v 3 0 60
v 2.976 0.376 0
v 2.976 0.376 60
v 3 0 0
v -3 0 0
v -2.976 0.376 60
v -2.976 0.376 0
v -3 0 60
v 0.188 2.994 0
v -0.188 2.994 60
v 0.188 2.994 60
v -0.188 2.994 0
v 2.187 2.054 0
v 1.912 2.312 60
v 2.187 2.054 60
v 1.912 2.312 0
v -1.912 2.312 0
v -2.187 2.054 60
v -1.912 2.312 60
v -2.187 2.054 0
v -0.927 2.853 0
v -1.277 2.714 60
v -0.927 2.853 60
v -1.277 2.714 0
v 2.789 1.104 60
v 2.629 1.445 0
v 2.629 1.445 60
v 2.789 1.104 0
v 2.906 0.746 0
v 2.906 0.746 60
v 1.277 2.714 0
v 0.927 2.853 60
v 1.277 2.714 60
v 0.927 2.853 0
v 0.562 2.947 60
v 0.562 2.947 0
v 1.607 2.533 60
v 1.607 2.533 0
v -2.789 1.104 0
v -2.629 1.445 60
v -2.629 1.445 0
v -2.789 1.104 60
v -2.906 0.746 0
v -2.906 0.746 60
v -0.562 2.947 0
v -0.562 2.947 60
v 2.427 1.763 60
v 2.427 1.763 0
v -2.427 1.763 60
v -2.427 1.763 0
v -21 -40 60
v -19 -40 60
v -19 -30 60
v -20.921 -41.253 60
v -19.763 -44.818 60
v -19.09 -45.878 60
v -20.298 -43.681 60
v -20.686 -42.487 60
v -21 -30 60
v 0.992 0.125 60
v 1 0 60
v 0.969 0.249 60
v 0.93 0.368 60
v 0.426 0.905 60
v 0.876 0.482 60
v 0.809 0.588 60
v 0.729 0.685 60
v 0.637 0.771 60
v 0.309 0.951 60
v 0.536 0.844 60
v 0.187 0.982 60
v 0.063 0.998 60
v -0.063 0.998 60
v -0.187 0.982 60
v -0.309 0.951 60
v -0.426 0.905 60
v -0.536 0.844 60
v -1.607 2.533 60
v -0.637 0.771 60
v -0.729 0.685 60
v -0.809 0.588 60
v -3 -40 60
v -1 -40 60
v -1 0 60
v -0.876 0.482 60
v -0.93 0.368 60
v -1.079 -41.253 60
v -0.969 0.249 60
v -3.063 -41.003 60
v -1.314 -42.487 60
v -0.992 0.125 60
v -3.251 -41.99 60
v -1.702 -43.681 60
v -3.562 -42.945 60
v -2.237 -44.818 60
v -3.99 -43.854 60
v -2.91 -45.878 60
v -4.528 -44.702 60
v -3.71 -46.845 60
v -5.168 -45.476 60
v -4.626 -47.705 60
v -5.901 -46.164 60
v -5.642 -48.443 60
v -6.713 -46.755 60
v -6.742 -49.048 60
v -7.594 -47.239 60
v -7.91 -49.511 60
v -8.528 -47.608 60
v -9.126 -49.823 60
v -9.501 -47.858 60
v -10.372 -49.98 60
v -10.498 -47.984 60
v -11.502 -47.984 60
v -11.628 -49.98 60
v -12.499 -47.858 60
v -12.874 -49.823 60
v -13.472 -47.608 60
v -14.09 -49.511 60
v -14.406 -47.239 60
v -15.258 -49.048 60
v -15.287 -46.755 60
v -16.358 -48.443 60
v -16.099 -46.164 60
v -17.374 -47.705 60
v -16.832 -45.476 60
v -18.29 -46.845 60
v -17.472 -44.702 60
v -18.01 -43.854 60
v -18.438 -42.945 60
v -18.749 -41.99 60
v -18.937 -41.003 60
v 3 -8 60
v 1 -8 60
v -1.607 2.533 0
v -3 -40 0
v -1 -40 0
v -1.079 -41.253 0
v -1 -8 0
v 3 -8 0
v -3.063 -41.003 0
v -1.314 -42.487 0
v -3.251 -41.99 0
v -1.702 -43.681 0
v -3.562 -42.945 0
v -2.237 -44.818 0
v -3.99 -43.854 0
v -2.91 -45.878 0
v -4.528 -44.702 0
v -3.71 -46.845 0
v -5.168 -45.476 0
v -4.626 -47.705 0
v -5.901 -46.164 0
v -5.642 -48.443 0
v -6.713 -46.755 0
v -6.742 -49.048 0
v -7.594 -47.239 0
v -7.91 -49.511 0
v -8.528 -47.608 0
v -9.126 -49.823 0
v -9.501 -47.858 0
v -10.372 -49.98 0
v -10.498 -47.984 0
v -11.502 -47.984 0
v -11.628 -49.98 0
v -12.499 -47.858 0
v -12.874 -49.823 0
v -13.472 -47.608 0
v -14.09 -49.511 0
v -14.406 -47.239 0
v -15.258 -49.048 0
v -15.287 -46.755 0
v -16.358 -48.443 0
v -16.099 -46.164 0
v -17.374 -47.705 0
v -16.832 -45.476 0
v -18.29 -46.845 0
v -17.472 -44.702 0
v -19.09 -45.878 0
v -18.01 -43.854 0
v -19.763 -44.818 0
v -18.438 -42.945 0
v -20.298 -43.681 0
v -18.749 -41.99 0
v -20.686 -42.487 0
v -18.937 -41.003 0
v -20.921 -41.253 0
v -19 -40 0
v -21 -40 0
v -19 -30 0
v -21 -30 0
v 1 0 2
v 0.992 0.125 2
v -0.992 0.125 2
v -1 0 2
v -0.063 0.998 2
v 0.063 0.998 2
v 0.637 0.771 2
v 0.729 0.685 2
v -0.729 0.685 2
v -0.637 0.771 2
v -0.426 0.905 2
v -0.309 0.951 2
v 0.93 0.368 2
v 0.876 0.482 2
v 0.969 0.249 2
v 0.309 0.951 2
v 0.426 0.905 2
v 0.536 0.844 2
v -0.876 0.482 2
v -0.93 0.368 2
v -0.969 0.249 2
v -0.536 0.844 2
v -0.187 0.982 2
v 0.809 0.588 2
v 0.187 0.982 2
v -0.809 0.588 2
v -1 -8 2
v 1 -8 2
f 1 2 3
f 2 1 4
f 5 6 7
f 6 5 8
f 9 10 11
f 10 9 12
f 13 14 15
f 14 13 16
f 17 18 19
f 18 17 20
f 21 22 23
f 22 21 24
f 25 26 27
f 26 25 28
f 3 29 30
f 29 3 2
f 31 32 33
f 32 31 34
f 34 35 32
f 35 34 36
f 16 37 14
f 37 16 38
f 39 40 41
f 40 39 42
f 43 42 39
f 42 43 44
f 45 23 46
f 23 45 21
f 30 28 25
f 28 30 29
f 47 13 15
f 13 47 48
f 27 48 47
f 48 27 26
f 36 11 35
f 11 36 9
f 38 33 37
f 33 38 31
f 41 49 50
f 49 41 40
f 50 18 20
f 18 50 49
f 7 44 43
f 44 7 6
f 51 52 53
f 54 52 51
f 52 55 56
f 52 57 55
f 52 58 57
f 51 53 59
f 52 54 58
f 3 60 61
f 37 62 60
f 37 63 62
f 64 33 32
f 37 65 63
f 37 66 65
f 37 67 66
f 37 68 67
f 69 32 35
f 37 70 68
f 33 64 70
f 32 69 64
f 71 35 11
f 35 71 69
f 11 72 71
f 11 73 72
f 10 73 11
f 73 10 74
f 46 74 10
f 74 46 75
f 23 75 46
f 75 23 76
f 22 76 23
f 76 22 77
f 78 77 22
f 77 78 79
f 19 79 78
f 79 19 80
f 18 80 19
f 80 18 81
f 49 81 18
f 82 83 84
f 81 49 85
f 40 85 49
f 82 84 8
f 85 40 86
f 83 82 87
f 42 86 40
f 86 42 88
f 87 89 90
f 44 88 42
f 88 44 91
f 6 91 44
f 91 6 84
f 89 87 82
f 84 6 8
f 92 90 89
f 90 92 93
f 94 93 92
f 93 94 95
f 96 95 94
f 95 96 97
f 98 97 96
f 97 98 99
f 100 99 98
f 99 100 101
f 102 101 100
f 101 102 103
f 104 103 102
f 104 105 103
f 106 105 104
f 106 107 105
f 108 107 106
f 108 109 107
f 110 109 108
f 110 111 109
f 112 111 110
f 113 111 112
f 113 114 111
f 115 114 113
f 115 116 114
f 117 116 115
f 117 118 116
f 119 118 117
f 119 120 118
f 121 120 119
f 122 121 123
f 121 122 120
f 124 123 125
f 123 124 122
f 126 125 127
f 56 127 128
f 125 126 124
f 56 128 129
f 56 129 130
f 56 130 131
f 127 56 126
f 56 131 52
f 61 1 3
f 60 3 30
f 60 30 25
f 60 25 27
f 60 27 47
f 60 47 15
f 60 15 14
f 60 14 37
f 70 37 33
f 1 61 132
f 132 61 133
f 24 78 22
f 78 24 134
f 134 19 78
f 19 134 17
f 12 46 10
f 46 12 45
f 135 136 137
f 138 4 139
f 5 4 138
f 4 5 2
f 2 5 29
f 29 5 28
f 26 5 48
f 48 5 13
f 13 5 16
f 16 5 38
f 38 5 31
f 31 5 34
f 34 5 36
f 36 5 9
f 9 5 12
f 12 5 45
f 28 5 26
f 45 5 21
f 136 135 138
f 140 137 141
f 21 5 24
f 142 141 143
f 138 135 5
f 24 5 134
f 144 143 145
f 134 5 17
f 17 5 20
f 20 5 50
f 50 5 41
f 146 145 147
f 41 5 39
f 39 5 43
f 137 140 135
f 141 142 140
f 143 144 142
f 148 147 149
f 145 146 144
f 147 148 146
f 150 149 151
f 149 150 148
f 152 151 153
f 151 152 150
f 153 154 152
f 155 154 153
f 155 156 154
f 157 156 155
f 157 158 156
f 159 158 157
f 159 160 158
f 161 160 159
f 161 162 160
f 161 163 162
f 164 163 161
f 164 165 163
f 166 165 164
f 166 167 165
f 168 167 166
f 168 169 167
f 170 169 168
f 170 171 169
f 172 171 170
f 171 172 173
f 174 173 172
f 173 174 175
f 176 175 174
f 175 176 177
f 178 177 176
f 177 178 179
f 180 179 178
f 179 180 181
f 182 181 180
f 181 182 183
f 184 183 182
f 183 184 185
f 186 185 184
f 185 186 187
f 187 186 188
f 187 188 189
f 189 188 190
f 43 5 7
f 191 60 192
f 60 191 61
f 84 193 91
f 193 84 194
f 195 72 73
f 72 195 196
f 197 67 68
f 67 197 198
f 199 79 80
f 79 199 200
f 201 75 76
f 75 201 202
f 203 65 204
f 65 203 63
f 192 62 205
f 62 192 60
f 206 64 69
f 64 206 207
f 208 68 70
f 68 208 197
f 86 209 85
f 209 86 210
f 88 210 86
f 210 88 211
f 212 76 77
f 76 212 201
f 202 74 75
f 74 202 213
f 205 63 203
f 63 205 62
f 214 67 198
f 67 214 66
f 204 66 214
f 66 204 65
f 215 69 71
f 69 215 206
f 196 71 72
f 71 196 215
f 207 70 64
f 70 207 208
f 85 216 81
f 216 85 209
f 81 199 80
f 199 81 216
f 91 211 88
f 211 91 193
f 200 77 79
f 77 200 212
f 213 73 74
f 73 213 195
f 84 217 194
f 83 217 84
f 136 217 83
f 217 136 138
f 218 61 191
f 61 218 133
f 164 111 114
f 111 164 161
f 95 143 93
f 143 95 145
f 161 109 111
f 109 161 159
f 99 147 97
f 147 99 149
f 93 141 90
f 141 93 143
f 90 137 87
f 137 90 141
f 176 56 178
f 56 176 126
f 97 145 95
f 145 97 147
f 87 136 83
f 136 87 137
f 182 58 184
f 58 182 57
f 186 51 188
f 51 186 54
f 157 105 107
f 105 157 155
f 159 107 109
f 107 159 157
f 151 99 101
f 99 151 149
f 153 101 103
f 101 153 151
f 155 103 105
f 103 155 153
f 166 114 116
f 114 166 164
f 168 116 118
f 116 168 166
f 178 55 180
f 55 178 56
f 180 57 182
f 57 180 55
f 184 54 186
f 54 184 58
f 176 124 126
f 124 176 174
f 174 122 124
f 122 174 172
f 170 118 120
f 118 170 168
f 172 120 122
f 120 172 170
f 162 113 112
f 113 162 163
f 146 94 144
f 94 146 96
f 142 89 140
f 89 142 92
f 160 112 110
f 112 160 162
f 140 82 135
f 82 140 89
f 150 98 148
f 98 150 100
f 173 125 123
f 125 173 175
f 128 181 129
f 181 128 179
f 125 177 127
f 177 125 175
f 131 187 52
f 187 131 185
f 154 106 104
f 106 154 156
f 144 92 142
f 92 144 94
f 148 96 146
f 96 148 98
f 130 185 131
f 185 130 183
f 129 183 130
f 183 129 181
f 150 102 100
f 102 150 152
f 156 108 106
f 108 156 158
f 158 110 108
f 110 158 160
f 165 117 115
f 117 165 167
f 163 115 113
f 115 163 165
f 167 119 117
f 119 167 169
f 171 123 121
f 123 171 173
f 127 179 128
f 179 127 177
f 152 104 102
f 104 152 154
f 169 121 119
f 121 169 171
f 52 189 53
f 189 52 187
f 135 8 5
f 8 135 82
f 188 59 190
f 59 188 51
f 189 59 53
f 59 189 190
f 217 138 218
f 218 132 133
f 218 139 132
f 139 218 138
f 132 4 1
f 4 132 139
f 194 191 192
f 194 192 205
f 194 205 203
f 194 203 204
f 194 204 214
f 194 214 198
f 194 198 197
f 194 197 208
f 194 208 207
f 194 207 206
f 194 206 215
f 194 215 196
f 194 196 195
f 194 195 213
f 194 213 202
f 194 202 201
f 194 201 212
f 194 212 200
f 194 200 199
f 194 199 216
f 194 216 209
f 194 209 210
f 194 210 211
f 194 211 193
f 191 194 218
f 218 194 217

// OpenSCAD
// file: ../text.scad
module curveText(txt, radius, size, thickness) {
  spacing = size;
  for (i = [0:len(txt) - 1]) {
    char = str(txt[i]);
    angle = i * spacing - (len(txt) - 1) * spacing / 2;
    rotate([0, 0, angle]) {
      translate([radius, 0, 0]) {
        rotate([90, 0, 90]) {
          linear_extrude(thickness) {
            text(char, font="Liberation Sans:style=Bold", size=size, halign="center", valign="center");
          }
        }
      }
    }
  }
}

module logo(size, thickness) {
  linear_extrude(thickness) {
    text("EZ", font="Liberation Sans:style=Bold", size=size, spacing=1.2, halign="center", valign="center");
  }
}
// main file
include <../text.scad>
$fn = 50;

width = 60;
height = 40;

rotate([90, 0, 0]) {
  difference() {
    rotate([-90, 0, 0]) {
      cylinder(h=width, d=6);
    }

    rotate([-90, 0, 0]) {
      cylinder(h=width, d=2);
    }

    translate([-1, 0, 0]) {
      cube([2, width, 3]);
    }
  }

  translate([-3, 0, 0]) {
    cube([2, width, height]);
  }

  translate([-11, 0, height]) {
    difference() {
      rotate([-90, 0, 0]) {
        cylinder(h=width, d=20);
      }

      rotate([-90, 0, 0]) {
        cylinder(h=width, d=16);
      }

      translate([-8, 0, -10]) {
        cube([16, width, 10]);
      }
    }
  }

  translate([-21, 0, height - 10]) {
    cube([2, width, 10]);
  }

  translate([1, 0, 0]) {
    cube([2, width, 8]);
  }

  translate([-1, 0, -1]) {
    cube([2, 2, 9]);
  }
}
